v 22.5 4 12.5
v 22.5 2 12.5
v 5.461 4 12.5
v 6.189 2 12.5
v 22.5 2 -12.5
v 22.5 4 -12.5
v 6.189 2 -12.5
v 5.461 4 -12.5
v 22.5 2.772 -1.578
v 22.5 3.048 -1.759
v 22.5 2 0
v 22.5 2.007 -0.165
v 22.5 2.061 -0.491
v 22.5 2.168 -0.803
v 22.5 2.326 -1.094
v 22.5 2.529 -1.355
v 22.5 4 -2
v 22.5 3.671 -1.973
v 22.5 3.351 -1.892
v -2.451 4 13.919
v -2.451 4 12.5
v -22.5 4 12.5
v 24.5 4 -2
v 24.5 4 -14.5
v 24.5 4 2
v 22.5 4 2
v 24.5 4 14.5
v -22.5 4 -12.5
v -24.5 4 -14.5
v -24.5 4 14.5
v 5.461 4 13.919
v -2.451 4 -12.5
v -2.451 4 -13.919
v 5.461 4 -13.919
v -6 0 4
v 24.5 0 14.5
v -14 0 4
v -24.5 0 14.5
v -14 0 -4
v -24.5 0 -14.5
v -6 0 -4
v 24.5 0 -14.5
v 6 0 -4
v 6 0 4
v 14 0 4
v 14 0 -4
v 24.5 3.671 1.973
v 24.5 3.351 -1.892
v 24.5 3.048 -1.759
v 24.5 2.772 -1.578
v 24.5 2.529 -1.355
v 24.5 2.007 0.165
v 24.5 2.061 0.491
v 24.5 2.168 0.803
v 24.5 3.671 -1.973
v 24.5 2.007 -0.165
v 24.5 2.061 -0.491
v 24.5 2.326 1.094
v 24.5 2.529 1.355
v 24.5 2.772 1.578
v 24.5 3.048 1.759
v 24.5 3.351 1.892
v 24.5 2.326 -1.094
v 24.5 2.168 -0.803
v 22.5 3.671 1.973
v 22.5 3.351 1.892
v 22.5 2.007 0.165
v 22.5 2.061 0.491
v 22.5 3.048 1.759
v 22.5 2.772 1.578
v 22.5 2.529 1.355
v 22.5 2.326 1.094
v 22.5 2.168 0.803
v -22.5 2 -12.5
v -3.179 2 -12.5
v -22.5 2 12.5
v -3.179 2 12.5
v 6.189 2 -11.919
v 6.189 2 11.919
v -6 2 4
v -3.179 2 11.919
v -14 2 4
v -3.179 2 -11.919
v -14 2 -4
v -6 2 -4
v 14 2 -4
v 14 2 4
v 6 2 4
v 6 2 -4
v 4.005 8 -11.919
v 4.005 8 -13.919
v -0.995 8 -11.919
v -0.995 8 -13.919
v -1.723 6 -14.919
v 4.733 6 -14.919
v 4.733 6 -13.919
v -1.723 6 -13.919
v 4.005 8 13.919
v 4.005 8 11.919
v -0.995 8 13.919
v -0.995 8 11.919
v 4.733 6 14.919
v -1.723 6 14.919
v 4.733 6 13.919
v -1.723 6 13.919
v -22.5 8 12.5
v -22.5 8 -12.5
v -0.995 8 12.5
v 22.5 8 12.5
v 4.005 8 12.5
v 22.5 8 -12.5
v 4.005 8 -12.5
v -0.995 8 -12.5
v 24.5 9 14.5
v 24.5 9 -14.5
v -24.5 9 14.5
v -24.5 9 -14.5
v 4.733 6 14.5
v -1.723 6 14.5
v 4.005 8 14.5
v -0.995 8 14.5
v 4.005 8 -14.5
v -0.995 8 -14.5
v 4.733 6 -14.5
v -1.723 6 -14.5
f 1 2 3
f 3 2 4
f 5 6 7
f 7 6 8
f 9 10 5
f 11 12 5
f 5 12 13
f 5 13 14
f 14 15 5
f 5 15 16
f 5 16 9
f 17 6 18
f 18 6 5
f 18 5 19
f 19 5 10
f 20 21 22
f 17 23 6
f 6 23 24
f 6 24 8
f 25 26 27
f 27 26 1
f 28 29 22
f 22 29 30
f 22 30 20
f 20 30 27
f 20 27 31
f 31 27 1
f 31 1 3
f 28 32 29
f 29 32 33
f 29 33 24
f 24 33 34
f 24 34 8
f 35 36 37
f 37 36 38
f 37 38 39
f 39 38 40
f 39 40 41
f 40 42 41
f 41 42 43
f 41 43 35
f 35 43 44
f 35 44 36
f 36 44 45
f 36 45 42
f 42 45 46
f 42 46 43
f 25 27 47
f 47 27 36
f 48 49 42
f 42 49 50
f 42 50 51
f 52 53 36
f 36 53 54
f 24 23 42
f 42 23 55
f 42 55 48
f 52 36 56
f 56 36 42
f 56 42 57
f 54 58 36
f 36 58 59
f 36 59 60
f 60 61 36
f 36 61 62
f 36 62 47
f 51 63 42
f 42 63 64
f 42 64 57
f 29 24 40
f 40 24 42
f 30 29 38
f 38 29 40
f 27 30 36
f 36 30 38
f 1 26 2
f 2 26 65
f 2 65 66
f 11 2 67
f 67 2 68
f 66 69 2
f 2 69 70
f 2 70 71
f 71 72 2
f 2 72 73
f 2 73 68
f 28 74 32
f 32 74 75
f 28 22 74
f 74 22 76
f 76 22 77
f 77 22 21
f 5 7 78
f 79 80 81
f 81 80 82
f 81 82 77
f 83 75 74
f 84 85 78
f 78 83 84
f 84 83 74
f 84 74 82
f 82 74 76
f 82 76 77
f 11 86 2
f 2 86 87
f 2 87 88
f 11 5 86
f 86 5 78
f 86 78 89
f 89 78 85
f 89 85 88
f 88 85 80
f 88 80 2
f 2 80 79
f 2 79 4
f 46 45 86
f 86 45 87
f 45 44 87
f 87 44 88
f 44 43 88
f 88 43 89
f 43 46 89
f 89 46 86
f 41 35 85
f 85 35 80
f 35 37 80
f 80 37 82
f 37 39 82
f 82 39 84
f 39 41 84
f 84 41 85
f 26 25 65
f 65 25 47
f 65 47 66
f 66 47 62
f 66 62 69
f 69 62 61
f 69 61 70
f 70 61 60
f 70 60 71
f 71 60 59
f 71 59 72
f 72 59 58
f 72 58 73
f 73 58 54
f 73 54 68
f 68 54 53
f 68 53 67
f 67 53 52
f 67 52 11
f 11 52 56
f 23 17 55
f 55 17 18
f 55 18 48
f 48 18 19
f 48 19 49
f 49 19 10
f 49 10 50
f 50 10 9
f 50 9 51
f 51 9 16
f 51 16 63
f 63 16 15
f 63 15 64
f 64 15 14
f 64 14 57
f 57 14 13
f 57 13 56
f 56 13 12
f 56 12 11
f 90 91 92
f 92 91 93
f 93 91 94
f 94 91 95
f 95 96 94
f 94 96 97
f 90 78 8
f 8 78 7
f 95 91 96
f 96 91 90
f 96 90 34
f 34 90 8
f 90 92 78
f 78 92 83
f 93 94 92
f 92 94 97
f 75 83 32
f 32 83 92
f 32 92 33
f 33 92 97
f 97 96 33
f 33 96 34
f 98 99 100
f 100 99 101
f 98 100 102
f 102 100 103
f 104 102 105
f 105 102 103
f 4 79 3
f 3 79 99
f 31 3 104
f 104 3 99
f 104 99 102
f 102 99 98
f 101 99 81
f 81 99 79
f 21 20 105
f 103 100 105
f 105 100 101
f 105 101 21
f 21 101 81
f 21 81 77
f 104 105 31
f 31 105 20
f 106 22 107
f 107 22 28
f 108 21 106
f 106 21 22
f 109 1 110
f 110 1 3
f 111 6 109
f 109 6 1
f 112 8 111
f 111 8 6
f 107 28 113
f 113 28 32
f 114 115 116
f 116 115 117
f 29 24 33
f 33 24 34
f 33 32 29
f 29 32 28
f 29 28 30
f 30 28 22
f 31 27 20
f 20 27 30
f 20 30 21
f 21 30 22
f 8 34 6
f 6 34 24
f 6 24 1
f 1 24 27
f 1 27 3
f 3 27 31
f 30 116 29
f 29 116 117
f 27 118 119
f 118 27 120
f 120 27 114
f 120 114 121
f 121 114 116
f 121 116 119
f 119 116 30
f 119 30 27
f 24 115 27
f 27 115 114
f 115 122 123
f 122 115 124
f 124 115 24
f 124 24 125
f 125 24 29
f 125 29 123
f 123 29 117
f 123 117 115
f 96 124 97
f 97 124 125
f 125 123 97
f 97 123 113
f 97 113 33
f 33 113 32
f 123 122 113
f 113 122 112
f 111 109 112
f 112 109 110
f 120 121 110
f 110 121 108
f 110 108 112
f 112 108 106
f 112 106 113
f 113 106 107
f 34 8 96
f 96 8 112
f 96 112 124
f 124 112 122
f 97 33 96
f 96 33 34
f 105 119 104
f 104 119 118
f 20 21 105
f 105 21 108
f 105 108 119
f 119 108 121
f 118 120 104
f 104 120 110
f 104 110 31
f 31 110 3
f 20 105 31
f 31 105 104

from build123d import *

# Parameters (mm, degrees)
SKETCH1_W            = 49
SKETCH1_H            = 29
SKETCH1_W_2          = 45
SKETCH1_H_2          = 25
EXTRUDE_THIN1_DEPTH  = 4
SKETCH1_2_W          = 45
SKETCH1_2_H          = 25
BOSS_EXTRUDE1_DEPTH  = 2
SKETCH2_W            = 8
SKETCH2_H            = 8
CUT_EXTRUDE1_DEPTH   = 29.539446386
CUT_EXTRUDE2_REACH   = 53.257
SKETCH3_R            = 2
SNAP_START           = -13.918963426
SNAP_HOOK1_DEPTH     = 2
SNAP_START_2         = -1.722964232
SNAP_HOOK1_2_DEPTH   = 6.455880937
SNAP_START_3         = -16
SNAP_HOOK1_3_DEPTH   = 2.081036574
SNAP_START_4         = -12.5
SNAP_HOOK1_4_DEPTH   = 0.581036574
SKETCH4_W            = 49
SKETCH4_H            = 29
SKETCH4_W_2          = 45
SKETCH4_H_2          = 25
EXTRUDE_THIN2_DEPTH  = 5
SNAP_GROOVE1_DEPTH   = 1.418963426
SNAP_START_5         = -14.5
SNAP_GROOVE1_2_DEPTH = 0.581036574
SKETCH5_W            = 49
SKETCH5_H            = 29
BOSS_EXTRUDE2_DEPTH  = 1


with BuildPart() as part:
    # Sketch1 → Extrude-Thin1 (new body)
    with BuildSketch(Plane(origin=(0, 0, 0), x_dir=(1, 0, 0), z_dir=(0, 1, 0))):
        Rectangle(SKETCH1_W, SKETCH1_H)
        Rectangle(SKETCH1_W_2, SKETCH1_H_2, mode=Mode.SUBTRACT)
    extrude(amount=EXTRUDE_THIN1_DEPTH)

    # Sketch1<2> → Boss-Extrude1 (add)
    with BuildSketch(Plane(origin=(0, 0, 0), x_dir=(1, 0, 0), z_dir=(0, 1, 0))):
        Rectangle(SKETCH1_2_W, SKETCH1_2_H)
    extrude(amount=BOSS_EXTRUDE1_DEPTH)

    # Sketch2 → Cut-Extrude1 (cut, through all)
    with BuildSketch(Plane(origin=(0, 2, 0), x_dir=(1, 0, 0), z_dir=(0, 1, 0))):
        with Locations((-10, 0)):
            Rectangle(SKETCH2_W, SKETCH2_H)
        with Locations((10, 0)):
            Rectangle(SKETCH2_W, SKETCH2_H)
    extrude(amount=-CUT_EXTRUDE1_DEPTH, mode=Mode.SUBTRACT)

    # Sketch3 → Cut-Extrude2 (cut, up to next)
    with BuildSketch(Plane(origin=(24.5, 0, 0), x_dir=(0, 0, -1), z_dir=(1, 0, 0)), mode=Mode.PRIVATE) as cut_extrude2_sk1:
        with Locations((0, 4)):
            Circle(SKETCH3_R)
    cut_extrude2_tool1 = extrude(cut_extrude2_sk1.sketch, amount=-CUT_EXTRUDE2_REACH, mode=Mode.PRIVATE) & part.part
    add(cut_extrude2_tool1.solids().sort_by_distance((24.5, 4, 0))[0], mode=Mode.SUBTRACT)

    # Snap Hook1: read off the stored shape, not the designer's step
    # Snap Hook1 outline → Snap Hook1 (add)
    with BuildSketch(Plane.XY.offset(SNAP_START)):
        Polygon((4.004976236, 8), (-0.995023764, 8), (-2.450904701, 4), (5.460857173, 4), align=None)
    snap_hook1 = extrude(amount=SNAP_HOOK1_DEPTH)

    # Snap Hook1 2 outline → Snap Hook1 2 (add)
    with BuildSketch(Plane.YZ.offset(SNAP_START_2)):
        Polygon((6, -13.918963426), (6, -14.918963426), (8, -13.918963426), align=None)
    snap_hook1_2 = extrude(amount=SNAP_HOOK1_2_DEPTH)

    # Snap Hook1 3 outline → Snap Hook1 3 (cut)
    with BuildSketch(Plane.XY.offset(SNAP_START_3)):
        Polygon((4.004976236, 8), (4.732916705, 6), (4.732916705, 9), (3.641006002, 9), align=None)
        Polygon((-1.722964232, 9), (-1.722964232, 6), (-0.995023764, 8), (-0.63105353, 9), align=None)
    snap_hook1_3 = extrude(amount=SNAP_HOOK1_3_DEPTH, mode=Mode.SUBTRACT)

    # Snap Hook1 4 outline → Snap Hook1 4 (add)
    with BuildSketch(Plane.XY.offset(SNAP_START_4)):
        Polygon((6.552767876, 1), (6.188797642, 2), (5.460857173, 4), (-2.450904701, 4), (-3.178845169, 2), (-3.542815403, 1), align=None)
    snap_hook1_4 = extrude(amount=SNAP_HOOK1_4_DEPTH)

    # Mirror3: Snap Hook1, Snap Hook1 2 across plane
    add(snap_hook1.mirror(Plane.XY))
    add(snap_hook1_2.mirror(Plane.XY))

    # Mirror3 2: Snap Hook1 3 across plane
    add(snap_hook1_3.mirror(Plane.XY), mode=Mode.SUBTRACT)

    # Mirror3 3: Snap Hook1 4 across plane
    add(snap_hook1_4.mirror(Plane.XY))


with BuildPart() as body_2:
    # Sketch4 → Extrude-Thin2 (new body)
    with BuildSketch(Plane(origin=(0, 4, 0), x_dir=(1, 0, 0), z_dir=(0, 1, 0))):
        Rectangle(SKETCH4_W, SKETCH4_H)
        Rectangle(SKETCH4_W_2, SKETCH4_H_2, mode=Mode.SUBTRACT)
    extrude(amount=EXTRUDE_THIN2_DEPTH)

    # Snap Groove1: read off the stored shape, not the designer's step
    # Snap Groove1 outline → Snap Groove1 (cut)
    with BuildSketch(Plane.XY.offset(SNAP_START)):
        Polygon((-0.995023764, 8), (-2.450904701, 4), (5.460857173, 4), (4.004976236, 8), align=None)
    snap_groove1 = extrude(amount=SNAP_GROOVE1_DEPTH, mode=Mode.SUBTRACT)

    # Snap Groove1 2 outline → Snap Groove1 2 (cut)
    with BuildSketch(Plane.XY.offset(SNAP_START_5)):
        Polygon((-0.995023764, 8), (-1.722964232, 6), (4.732916705, 6), (4.004976236, 8), align=None)
    snap_groove1_2 = extrude(amount=SNAP_GROOVE1_2_DEPTH, mode=Mode.SUBTRACT)

    # Mirror4: Snap Groove1, Snap Groove1 2 across plane
    add(snap_groove1.mirror(Plane.XY), mode=Mode.SUBTRACT)
    add(snap_groove1_2.mirror(Plane.XY), mode=Mode.SUBTRACT)

    # Sketch5 → Boss-Extrude2 (add)
    with BuildSketch(Plane(origin=(0, 9, 0), x_dir=(1, 0, 0), z_dir=(0, 1, 0))):
        Rectangle(SKETCH5_W, SKETCH5_H)
    extrude(amount=-BOSS_EXTRUDE2_DEPTH)


solid = Compound([part.part, body_2.part])
